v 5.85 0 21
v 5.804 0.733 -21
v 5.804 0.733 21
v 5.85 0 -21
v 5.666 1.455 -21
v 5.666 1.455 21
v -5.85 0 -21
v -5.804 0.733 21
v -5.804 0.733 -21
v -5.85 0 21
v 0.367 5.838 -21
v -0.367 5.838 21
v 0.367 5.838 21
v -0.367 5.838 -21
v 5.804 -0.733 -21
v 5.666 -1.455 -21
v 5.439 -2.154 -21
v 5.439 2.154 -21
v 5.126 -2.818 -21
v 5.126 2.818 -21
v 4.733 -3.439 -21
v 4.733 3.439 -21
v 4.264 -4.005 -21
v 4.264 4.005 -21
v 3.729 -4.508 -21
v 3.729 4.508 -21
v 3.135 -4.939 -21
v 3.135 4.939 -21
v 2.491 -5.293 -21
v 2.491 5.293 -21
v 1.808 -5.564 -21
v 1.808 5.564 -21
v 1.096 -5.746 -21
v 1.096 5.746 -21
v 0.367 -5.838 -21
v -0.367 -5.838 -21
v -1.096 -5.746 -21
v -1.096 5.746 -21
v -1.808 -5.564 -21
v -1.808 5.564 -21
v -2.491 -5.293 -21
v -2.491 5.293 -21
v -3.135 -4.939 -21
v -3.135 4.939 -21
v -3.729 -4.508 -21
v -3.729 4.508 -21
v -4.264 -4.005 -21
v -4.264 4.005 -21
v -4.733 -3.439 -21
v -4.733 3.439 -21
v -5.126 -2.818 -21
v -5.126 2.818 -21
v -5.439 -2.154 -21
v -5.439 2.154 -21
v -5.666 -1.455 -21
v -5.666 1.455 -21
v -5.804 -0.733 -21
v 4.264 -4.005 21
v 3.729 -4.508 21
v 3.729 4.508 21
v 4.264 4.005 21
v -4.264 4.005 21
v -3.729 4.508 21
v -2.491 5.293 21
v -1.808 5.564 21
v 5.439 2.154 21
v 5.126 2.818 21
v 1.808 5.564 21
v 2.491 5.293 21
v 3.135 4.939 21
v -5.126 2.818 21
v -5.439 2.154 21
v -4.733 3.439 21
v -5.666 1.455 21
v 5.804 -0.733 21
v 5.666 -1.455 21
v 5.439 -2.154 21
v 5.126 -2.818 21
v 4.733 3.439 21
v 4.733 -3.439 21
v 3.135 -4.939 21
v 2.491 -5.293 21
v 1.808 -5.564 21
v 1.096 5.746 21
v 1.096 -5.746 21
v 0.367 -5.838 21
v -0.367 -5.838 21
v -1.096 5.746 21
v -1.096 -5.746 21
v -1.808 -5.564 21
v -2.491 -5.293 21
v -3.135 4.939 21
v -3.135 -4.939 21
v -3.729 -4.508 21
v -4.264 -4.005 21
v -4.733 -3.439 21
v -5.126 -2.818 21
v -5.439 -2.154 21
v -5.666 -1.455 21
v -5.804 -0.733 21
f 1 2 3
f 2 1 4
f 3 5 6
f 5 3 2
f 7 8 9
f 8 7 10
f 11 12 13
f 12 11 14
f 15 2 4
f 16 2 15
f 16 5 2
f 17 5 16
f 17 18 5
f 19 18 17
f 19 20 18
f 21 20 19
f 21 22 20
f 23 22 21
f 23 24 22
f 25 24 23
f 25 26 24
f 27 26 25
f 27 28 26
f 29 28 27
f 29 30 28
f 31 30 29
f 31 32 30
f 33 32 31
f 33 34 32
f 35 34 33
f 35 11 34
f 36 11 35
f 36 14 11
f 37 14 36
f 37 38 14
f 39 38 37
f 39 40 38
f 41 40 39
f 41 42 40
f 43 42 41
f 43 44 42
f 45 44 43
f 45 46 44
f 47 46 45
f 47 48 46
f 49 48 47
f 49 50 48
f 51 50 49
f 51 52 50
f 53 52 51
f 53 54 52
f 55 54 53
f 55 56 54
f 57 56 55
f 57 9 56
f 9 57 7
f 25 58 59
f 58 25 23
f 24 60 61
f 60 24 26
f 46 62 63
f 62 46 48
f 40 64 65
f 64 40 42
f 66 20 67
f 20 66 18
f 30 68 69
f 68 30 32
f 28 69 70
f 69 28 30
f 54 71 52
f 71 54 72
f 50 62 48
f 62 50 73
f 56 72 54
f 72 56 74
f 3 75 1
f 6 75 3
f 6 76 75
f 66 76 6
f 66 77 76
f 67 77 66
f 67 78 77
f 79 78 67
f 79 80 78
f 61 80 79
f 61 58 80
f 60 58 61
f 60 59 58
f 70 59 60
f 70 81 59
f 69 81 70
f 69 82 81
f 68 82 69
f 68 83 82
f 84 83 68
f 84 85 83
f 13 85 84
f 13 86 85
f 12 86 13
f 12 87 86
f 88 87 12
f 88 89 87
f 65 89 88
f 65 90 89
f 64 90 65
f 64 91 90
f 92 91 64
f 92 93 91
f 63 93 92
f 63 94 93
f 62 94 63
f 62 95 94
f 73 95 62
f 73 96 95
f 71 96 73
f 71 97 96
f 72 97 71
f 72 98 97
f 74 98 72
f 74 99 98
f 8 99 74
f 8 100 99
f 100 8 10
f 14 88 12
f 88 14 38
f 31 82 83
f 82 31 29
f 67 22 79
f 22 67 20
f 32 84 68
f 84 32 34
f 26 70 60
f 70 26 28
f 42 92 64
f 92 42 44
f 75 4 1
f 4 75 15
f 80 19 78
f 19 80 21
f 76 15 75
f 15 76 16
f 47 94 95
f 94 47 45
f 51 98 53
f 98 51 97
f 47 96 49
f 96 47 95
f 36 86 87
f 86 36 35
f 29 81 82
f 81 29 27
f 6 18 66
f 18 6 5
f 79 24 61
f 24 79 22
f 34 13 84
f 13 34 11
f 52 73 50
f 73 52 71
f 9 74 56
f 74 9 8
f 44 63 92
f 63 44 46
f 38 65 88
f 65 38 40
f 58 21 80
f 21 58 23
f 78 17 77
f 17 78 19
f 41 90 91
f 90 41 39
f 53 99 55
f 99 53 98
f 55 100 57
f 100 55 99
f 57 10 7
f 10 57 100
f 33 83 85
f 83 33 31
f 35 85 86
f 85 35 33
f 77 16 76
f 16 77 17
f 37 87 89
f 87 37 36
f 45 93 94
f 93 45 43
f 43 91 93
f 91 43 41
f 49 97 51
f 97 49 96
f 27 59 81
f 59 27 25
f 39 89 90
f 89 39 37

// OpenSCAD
$fn = 50;


difference() {
	union() {
		translate(v = [0, 0, -21.0000000000]) {
			cylinder(h = 42, r = 5.8500000000);
		}
	}
	union() {
		translate(v = [0, 0, -100.0000000000]) {
			cylinder(h = 200, r = 0);
		}
	}
}
